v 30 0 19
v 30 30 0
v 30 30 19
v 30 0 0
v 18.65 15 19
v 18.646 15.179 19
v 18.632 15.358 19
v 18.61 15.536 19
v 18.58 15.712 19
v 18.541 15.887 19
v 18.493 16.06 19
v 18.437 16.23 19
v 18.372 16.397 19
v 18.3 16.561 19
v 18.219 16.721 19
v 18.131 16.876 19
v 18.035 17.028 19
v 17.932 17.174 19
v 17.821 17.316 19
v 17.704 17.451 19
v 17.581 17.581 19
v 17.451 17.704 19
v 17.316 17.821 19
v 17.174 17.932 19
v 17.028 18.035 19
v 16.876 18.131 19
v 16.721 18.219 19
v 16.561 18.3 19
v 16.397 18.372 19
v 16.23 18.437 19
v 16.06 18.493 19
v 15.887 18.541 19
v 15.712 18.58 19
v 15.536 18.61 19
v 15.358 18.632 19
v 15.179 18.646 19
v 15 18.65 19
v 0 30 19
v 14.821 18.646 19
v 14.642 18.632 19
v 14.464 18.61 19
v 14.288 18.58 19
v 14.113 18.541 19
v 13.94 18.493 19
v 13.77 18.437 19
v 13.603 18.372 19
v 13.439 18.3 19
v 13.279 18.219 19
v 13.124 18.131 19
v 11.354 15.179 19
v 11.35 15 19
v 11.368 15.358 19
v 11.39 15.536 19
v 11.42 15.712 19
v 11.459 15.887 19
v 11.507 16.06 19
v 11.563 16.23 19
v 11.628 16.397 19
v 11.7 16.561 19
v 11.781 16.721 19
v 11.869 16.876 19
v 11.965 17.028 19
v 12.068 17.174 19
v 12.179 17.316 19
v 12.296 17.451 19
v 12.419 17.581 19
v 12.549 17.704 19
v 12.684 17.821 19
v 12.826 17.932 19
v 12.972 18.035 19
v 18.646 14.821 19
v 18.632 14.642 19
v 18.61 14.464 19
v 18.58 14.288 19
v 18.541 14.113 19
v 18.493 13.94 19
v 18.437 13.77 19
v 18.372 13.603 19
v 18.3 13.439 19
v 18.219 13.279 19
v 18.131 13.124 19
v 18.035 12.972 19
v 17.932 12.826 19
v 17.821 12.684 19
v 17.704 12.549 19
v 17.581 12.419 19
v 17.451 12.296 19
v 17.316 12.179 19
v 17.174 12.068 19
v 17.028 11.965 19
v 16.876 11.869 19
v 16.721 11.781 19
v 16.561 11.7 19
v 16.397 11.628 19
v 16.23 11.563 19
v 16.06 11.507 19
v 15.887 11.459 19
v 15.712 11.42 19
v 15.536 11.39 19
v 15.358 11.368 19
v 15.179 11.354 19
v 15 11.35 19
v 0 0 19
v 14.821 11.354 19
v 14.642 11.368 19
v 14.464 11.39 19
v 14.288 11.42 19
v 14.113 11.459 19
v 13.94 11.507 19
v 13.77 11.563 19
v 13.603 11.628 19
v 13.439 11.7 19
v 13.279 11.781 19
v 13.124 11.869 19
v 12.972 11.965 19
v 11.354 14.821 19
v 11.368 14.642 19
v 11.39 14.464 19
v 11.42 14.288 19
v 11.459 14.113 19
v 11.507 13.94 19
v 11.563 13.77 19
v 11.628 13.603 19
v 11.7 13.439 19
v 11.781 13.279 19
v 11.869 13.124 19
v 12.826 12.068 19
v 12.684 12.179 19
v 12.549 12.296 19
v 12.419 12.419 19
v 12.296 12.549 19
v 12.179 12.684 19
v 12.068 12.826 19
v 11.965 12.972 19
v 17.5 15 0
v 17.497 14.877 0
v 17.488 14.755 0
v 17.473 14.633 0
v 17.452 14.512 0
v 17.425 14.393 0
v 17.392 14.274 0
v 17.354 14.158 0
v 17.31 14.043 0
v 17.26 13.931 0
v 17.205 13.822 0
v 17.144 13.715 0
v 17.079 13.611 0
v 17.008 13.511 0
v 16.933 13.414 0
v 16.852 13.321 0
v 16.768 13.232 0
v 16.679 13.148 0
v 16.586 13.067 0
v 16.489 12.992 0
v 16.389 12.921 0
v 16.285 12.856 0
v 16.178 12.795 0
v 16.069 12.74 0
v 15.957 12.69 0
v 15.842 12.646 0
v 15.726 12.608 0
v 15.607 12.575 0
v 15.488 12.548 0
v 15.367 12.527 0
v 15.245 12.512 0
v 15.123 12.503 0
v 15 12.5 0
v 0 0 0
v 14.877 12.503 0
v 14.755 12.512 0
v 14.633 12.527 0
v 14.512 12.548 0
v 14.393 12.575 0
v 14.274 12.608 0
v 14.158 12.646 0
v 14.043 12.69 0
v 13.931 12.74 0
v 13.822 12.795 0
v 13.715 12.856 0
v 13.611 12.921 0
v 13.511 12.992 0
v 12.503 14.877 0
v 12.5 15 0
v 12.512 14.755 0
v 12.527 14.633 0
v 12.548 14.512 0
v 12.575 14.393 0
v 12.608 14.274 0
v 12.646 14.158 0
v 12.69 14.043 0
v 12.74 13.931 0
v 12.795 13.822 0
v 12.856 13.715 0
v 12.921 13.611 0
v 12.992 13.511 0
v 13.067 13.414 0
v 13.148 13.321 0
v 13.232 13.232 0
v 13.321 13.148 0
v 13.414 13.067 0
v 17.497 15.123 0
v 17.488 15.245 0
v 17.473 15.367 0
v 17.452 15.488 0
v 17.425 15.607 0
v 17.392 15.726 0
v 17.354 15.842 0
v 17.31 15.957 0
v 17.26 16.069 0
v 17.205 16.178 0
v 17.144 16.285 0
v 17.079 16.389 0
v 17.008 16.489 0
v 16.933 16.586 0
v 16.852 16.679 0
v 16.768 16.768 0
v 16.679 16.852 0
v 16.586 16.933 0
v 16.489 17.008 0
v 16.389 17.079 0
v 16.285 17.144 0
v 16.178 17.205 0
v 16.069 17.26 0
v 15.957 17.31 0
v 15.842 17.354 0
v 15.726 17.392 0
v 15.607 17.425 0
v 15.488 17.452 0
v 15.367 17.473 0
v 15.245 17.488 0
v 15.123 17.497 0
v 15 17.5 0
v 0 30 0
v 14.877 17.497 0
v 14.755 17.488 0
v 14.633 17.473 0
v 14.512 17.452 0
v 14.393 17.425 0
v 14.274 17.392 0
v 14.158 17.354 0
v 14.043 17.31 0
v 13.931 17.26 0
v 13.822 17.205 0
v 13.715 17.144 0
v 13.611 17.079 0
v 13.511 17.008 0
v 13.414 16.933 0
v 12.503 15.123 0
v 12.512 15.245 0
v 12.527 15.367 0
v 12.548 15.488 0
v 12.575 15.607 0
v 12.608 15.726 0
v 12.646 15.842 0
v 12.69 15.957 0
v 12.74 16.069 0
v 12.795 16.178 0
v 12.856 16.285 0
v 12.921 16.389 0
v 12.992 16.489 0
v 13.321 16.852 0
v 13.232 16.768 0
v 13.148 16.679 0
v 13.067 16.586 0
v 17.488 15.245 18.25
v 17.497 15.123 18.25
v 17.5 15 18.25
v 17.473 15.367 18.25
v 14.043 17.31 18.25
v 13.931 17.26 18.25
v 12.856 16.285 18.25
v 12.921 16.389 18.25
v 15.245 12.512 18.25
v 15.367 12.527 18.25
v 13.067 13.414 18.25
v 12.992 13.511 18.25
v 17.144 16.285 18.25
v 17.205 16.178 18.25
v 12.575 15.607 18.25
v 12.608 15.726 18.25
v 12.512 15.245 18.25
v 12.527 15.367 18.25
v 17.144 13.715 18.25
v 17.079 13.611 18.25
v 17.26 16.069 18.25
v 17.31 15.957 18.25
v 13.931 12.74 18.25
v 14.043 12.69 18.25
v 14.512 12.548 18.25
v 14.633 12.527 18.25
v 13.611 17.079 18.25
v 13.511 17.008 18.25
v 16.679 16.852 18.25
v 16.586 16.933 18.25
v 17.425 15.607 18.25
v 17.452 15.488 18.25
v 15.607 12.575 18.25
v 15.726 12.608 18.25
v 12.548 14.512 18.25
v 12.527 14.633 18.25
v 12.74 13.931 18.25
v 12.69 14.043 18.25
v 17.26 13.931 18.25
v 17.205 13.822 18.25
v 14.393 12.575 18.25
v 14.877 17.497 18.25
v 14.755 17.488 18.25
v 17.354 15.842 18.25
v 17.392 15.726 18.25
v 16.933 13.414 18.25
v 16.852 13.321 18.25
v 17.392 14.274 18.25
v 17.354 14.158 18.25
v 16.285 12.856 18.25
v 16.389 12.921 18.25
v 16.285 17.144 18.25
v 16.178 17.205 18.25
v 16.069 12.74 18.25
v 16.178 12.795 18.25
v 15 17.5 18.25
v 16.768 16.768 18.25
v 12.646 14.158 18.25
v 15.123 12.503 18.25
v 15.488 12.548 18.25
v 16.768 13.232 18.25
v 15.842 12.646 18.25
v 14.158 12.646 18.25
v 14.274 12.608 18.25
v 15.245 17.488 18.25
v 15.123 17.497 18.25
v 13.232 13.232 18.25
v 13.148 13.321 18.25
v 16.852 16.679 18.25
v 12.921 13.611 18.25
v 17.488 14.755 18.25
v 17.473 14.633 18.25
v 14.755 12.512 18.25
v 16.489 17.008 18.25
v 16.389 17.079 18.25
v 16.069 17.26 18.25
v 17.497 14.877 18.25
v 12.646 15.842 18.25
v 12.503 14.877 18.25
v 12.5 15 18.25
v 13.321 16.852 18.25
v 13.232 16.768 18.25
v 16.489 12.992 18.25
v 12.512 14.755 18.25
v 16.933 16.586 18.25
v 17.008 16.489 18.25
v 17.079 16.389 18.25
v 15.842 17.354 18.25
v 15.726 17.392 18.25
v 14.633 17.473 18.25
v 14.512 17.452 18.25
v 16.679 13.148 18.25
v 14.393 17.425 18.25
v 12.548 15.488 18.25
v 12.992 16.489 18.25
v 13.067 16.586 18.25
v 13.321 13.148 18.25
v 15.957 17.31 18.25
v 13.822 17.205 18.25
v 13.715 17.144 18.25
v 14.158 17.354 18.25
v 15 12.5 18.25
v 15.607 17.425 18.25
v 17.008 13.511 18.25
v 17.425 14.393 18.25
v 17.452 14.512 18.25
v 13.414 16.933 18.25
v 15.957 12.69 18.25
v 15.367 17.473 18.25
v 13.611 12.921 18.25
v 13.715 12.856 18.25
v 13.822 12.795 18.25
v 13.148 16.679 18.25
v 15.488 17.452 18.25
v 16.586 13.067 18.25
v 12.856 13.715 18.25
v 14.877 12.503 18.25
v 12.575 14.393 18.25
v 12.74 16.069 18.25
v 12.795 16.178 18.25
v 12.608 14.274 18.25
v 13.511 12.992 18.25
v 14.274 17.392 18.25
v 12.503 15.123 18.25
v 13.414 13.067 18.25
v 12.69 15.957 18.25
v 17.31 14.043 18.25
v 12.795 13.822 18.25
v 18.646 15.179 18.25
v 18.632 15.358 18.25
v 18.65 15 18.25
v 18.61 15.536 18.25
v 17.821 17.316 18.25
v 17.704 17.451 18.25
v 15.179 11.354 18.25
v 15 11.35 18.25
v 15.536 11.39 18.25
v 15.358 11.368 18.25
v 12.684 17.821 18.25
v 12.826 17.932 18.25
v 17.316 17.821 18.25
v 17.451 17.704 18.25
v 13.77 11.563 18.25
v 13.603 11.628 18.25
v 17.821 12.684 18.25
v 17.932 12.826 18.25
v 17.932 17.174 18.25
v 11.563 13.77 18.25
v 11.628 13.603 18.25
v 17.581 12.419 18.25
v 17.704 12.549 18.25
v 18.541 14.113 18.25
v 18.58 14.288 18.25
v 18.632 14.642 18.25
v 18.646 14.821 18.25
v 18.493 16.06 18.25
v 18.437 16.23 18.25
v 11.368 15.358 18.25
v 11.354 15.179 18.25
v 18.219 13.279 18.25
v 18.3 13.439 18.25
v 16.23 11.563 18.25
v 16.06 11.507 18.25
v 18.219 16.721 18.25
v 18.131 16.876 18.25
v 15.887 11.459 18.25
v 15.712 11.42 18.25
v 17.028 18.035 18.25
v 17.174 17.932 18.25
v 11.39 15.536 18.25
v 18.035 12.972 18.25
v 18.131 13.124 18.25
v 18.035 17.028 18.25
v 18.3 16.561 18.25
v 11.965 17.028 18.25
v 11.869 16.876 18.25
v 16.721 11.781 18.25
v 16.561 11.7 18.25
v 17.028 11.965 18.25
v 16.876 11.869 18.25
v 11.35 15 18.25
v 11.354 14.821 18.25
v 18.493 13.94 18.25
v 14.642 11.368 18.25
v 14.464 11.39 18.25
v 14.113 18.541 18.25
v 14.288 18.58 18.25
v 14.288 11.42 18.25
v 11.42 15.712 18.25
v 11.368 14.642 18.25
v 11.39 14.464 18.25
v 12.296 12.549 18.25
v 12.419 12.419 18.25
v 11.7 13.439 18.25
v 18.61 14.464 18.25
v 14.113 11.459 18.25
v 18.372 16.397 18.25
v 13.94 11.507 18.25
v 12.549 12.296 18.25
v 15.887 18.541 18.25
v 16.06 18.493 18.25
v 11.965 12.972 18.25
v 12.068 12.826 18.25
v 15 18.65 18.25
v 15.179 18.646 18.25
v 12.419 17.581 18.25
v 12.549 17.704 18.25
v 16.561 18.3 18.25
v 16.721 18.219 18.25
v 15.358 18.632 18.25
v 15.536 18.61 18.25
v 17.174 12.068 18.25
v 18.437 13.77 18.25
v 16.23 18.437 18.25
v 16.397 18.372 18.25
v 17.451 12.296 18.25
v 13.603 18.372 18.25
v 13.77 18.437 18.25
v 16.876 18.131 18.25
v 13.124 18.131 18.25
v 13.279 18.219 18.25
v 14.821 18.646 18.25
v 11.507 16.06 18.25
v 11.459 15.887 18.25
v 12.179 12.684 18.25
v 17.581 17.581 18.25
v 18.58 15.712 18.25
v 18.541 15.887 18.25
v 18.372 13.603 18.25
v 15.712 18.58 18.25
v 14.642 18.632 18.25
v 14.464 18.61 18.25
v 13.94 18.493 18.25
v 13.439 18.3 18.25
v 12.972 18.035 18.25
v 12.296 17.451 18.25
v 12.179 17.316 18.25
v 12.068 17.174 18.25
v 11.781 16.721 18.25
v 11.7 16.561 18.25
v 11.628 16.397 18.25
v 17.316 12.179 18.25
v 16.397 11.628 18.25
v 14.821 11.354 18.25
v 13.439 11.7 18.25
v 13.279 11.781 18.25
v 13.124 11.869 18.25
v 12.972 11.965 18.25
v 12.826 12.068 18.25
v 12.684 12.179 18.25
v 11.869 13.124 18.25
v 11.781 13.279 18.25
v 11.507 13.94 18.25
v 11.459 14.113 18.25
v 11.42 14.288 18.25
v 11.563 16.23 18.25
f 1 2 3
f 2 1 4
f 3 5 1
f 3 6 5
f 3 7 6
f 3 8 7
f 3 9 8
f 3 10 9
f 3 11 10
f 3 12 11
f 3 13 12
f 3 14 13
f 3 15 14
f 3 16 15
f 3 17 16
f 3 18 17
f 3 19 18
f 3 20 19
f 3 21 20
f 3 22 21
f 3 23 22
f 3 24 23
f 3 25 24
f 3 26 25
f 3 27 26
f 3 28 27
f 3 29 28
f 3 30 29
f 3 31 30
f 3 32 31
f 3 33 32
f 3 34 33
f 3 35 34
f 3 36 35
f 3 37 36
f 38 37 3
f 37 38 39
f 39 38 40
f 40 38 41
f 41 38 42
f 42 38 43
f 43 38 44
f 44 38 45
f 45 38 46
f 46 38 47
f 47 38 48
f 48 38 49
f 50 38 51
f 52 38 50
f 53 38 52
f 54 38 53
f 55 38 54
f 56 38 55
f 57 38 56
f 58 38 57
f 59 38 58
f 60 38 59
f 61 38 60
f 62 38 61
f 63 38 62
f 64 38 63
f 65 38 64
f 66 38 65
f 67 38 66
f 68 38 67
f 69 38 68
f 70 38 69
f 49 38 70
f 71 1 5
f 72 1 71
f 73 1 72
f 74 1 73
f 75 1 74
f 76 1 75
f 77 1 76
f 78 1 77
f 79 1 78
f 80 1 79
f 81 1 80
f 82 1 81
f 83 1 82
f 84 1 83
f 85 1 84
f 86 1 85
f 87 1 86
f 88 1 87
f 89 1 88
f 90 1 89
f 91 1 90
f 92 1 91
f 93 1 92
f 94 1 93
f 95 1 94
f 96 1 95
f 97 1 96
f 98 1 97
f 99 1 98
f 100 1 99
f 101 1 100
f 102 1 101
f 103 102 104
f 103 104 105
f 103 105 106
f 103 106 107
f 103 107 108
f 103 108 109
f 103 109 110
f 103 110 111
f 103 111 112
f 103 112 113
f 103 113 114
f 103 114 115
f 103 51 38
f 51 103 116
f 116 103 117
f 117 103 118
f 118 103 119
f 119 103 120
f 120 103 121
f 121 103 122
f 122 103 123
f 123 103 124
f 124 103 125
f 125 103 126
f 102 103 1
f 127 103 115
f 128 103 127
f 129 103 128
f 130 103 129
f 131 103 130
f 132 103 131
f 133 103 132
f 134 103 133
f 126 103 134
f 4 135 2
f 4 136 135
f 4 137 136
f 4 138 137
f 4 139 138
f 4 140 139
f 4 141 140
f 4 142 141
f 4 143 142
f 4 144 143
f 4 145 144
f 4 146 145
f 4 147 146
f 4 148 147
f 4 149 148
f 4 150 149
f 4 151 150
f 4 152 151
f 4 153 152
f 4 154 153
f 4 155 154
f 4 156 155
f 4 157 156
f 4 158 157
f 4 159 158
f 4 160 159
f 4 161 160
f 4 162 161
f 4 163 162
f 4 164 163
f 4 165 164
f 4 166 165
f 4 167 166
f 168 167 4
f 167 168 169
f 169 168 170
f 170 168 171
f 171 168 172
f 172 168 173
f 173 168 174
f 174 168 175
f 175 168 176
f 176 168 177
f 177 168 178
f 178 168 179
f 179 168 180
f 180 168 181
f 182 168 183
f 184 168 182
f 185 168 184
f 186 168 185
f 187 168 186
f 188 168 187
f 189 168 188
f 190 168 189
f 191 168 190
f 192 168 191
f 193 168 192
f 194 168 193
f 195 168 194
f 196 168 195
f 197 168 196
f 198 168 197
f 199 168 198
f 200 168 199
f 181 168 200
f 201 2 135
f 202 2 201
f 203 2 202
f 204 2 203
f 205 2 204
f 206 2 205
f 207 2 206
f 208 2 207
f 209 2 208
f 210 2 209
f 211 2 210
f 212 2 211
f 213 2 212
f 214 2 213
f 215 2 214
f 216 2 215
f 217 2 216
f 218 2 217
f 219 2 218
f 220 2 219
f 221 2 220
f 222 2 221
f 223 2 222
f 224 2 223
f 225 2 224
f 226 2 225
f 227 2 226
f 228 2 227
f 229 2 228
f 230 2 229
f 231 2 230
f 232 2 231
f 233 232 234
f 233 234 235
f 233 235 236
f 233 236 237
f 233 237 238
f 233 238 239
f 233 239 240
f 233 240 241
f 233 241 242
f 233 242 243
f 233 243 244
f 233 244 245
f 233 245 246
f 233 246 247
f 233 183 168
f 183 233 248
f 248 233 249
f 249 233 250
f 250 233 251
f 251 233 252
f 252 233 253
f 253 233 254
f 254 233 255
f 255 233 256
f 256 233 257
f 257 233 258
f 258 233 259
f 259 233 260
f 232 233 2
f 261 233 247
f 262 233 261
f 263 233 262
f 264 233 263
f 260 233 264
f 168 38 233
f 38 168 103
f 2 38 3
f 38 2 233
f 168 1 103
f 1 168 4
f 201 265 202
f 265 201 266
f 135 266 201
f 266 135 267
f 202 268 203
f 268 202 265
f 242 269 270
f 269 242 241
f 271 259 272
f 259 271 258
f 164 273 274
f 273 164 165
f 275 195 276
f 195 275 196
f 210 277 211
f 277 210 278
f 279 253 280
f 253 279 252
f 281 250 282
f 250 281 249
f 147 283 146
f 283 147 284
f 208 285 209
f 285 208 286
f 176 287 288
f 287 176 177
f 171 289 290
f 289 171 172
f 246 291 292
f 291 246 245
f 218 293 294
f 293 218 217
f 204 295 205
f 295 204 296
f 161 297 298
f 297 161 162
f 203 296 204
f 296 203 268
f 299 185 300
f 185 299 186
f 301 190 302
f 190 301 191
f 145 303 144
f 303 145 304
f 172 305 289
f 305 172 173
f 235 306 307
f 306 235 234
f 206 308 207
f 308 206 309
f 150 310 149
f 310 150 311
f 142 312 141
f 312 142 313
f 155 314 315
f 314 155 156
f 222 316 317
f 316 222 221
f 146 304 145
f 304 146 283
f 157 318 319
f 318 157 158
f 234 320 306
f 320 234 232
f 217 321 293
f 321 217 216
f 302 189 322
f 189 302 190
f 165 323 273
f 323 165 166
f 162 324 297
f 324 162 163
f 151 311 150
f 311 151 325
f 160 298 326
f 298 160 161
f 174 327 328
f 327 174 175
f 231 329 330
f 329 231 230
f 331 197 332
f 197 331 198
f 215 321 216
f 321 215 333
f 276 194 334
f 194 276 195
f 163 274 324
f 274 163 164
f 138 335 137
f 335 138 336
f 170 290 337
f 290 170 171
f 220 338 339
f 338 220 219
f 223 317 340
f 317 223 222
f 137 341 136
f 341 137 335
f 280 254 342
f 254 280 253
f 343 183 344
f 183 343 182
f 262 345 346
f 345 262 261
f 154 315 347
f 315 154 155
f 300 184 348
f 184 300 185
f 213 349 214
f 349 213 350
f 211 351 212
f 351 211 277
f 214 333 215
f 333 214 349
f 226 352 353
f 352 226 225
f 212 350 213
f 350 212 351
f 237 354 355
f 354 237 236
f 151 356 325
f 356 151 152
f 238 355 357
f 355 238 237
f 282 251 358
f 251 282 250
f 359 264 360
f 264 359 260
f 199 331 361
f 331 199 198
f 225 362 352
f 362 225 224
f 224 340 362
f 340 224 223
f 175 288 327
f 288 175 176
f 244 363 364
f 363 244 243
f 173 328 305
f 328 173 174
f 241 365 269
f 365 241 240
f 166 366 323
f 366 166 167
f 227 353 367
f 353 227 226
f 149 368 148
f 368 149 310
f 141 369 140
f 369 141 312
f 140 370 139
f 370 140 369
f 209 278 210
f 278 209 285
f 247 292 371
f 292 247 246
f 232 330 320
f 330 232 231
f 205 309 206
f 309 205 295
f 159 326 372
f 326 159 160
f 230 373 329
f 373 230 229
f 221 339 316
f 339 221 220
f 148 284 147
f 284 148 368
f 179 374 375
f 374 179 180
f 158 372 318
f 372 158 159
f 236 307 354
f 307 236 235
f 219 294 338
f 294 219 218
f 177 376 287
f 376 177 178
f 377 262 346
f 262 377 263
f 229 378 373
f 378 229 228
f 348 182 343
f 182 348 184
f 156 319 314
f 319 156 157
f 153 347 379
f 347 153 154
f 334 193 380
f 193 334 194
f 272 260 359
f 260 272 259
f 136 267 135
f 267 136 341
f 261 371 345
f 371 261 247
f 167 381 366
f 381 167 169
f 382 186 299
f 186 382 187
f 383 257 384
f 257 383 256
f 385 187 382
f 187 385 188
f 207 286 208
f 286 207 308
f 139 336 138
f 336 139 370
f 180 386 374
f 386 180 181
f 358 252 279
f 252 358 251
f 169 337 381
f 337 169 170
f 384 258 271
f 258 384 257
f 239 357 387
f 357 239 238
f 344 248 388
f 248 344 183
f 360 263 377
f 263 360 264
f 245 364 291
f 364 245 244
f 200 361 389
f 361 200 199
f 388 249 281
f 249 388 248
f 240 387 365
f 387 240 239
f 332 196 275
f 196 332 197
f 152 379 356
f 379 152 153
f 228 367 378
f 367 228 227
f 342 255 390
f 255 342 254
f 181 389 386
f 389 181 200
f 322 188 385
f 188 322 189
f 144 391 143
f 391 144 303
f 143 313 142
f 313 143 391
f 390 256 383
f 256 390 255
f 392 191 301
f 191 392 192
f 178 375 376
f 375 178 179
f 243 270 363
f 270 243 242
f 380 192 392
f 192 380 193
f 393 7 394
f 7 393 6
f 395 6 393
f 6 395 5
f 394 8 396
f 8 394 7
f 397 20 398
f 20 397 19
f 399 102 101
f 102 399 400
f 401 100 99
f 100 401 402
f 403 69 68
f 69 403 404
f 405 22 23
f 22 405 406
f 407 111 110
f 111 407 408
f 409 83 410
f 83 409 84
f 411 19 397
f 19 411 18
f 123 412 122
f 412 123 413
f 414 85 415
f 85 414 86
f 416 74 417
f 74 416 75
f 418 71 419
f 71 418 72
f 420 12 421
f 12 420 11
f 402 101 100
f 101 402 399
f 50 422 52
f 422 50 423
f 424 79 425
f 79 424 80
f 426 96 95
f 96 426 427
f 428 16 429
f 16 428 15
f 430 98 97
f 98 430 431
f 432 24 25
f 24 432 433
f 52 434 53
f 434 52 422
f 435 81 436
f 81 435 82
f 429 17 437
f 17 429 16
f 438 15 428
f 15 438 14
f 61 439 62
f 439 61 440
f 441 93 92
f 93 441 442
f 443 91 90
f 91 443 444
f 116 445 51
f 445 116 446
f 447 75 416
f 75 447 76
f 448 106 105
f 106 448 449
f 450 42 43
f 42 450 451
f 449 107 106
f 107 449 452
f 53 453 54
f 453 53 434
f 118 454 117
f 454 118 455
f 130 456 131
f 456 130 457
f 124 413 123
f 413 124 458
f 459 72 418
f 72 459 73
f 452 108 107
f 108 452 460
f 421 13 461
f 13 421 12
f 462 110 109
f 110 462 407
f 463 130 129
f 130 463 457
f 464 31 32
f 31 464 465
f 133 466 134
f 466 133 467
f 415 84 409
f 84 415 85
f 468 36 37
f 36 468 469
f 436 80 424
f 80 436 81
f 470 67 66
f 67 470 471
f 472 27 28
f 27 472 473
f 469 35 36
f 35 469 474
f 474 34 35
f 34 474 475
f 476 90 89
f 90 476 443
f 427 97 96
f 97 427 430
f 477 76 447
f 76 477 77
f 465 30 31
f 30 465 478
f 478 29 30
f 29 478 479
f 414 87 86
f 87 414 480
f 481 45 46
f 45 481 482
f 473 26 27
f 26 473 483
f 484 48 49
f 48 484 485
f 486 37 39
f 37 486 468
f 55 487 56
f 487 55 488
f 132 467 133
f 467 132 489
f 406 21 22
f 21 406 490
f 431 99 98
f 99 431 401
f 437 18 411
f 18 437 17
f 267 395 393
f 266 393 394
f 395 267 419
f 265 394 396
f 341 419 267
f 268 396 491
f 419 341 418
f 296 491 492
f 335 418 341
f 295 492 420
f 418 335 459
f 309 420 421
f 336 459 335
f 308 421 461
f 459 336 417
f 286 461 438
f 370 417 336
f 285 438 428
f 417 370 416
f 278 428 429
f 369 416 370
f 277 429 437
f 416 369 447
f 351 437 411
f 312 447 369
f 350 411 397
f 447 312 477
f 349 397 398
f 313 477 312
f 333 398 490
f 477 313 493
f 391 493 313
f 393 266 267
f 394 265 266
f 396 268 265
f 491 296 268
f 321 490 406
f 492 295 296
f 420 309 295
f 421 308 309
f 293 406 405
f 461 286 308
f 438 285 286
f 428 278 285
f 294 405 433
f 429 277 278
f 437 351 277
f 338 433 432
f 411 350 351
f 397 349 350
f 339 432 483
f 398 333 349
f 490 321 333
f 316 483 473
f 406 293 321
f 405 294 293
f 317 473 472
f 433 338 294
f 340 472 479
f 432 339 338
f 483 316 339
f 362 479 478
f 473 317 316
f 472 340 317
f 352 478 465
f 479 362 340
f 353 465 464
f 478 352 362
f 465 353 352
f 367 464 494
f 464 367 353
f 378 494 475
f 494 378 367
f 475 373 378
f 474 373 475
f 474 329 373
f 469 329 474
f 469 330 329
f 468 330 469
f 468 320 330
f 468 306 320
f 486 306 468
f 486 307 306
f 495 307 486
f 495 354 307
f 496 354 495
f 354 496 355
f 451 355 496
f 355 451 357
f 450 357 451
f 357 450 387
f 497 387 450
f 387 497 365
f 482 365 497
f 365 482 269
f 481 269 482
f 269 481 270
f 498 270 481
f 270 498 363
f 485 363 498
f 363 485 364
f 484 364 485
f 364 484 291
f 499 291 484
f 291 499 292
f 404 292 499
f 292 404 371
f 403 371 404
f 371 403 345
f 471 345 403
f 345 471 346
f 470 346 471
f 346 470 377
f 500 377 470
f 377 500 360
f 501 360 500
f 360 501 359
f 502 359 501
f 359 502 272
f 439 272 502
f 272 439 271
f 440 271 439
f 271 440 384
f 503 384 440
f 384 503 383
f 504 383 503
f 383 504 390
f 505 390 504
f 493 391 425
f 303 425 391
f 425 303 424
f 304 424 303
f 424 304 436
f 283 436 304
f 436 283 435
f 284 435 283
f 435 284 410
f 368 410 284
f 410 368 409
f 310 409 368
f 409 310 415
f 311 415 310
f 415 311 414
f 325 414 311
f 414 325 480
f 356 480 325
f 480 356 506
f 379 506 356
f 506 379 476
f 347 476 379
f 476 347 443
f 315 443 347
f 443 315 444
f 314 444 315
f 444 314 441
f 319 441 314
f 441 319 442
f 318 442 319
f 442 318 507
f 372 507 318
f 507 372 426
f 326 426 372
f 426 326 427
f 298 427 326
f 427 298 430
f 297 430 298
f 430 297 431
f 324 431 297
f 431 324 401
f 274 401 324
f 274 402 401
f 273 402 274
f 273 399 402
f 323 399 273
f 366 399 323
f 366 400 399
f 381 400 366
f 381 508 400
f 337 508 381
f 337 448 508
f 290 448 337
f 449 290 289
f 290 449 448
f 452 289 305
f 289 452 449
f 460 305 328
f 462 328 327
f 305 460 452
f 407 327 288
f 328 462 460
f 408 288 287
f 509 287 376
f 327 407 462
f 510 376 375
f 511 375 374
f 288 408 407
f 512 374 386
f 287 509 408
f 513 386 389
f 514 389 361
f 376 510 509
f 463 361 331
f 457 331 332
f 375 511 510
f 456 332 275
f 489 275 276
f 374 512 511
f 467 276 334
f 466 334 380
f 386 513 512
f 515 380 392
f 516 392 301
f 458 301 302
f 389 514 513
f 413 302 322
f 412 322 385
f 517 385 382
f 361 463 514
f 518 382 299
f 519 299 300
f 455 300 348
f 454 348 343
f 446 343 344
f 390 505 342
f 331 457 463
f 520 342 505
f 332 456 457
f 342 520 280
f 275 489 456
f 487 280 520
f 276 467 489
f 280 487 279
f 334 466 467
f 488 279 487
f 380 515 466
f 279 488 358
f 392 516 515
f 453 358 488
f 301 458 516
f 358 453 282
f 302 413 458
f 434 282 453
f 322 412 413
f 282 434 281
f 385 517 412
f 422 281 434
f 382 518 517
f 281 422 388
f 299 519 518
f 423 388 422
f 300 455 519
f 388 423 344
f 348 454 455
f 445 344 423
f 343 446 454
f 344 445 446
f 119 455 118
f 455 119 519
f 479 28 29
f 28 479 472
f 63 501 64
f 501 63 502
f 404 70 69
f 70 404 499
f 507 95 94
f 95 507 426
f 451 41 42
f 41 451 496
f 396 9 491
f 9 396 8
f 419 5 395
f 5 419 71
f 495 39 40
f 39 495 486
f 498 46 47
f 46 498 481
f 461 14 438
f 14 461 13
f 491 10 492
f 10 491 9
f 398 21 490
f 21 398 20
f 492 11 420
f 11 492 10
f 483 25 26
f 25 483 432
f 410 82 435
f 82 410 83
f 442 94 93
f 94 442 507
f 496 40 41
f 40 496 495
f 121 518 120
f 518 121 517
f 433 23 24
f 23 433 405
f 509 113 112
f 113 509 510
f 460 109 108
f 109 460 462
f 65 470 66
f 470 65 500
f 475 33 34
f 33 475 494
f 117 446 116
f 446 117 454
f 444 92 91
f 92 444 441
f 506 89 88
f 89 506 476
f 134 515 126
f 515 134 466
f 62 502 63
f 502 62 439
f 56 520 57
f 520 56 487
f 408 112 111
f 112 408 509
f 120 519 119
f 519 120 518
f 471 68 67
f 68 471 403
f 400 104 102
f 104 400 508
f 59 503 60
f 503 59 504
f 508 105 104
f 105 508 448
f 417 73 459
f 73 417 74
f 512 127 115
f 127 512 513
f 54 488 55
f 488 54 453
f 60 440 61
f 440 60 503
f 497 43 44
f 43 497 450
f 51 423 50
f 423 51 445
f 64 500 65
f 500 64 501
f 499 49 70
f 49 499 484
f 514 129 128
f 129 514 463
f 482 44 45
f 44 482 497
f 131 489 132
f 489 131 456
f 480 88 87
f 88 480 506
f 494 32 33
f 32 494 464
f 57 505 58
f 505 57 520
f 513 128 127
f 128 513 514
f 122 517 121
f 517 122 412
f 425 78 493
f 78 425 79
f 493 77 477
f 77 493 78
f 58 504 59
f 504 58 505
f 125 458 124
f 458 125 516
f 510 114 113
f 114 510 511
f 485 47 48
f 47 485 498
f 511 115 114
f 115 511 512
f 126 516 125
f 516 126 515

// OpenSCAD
module maleside(){
	difference(){
             cube([30,30,19]);
             translate([15,15,0]) cylinder(r=5.4/2,h=100,$fn=128);
             translate([15,15,-1]) cylinder(r=9.2/2,h=4,$fn=128);
             }
            
}

module femaleside(){
  difference(){
             cube([30,30,19]);
             hull(){
              translate([15,15,0]) cylinder(r=5/2,h=100,$fn=128);
              translate([15,15,18.5]) cylinder(r=5.6/2,h=1,$fn=128);
              }
             translate([15,15,-1]) cylinder(r=9.8/2,h=6,$fn=6);           
             }  
  }

module insertside(){
  difference(){
             cube([30,30,19]);
              translate([15,15,0]) cylinder(r=5/2,h=100,$fn=128);
              translate([15,15,18.5-.25]) cylinder(r=7.3/2,h=2.5,$fn=128);
             }  
  }

  
//translate([0,0,0]) rotate([180,0,0]) maleside();
//translate([40,0,0]) rotate([180,0,0])  femaleside();
insertside();
